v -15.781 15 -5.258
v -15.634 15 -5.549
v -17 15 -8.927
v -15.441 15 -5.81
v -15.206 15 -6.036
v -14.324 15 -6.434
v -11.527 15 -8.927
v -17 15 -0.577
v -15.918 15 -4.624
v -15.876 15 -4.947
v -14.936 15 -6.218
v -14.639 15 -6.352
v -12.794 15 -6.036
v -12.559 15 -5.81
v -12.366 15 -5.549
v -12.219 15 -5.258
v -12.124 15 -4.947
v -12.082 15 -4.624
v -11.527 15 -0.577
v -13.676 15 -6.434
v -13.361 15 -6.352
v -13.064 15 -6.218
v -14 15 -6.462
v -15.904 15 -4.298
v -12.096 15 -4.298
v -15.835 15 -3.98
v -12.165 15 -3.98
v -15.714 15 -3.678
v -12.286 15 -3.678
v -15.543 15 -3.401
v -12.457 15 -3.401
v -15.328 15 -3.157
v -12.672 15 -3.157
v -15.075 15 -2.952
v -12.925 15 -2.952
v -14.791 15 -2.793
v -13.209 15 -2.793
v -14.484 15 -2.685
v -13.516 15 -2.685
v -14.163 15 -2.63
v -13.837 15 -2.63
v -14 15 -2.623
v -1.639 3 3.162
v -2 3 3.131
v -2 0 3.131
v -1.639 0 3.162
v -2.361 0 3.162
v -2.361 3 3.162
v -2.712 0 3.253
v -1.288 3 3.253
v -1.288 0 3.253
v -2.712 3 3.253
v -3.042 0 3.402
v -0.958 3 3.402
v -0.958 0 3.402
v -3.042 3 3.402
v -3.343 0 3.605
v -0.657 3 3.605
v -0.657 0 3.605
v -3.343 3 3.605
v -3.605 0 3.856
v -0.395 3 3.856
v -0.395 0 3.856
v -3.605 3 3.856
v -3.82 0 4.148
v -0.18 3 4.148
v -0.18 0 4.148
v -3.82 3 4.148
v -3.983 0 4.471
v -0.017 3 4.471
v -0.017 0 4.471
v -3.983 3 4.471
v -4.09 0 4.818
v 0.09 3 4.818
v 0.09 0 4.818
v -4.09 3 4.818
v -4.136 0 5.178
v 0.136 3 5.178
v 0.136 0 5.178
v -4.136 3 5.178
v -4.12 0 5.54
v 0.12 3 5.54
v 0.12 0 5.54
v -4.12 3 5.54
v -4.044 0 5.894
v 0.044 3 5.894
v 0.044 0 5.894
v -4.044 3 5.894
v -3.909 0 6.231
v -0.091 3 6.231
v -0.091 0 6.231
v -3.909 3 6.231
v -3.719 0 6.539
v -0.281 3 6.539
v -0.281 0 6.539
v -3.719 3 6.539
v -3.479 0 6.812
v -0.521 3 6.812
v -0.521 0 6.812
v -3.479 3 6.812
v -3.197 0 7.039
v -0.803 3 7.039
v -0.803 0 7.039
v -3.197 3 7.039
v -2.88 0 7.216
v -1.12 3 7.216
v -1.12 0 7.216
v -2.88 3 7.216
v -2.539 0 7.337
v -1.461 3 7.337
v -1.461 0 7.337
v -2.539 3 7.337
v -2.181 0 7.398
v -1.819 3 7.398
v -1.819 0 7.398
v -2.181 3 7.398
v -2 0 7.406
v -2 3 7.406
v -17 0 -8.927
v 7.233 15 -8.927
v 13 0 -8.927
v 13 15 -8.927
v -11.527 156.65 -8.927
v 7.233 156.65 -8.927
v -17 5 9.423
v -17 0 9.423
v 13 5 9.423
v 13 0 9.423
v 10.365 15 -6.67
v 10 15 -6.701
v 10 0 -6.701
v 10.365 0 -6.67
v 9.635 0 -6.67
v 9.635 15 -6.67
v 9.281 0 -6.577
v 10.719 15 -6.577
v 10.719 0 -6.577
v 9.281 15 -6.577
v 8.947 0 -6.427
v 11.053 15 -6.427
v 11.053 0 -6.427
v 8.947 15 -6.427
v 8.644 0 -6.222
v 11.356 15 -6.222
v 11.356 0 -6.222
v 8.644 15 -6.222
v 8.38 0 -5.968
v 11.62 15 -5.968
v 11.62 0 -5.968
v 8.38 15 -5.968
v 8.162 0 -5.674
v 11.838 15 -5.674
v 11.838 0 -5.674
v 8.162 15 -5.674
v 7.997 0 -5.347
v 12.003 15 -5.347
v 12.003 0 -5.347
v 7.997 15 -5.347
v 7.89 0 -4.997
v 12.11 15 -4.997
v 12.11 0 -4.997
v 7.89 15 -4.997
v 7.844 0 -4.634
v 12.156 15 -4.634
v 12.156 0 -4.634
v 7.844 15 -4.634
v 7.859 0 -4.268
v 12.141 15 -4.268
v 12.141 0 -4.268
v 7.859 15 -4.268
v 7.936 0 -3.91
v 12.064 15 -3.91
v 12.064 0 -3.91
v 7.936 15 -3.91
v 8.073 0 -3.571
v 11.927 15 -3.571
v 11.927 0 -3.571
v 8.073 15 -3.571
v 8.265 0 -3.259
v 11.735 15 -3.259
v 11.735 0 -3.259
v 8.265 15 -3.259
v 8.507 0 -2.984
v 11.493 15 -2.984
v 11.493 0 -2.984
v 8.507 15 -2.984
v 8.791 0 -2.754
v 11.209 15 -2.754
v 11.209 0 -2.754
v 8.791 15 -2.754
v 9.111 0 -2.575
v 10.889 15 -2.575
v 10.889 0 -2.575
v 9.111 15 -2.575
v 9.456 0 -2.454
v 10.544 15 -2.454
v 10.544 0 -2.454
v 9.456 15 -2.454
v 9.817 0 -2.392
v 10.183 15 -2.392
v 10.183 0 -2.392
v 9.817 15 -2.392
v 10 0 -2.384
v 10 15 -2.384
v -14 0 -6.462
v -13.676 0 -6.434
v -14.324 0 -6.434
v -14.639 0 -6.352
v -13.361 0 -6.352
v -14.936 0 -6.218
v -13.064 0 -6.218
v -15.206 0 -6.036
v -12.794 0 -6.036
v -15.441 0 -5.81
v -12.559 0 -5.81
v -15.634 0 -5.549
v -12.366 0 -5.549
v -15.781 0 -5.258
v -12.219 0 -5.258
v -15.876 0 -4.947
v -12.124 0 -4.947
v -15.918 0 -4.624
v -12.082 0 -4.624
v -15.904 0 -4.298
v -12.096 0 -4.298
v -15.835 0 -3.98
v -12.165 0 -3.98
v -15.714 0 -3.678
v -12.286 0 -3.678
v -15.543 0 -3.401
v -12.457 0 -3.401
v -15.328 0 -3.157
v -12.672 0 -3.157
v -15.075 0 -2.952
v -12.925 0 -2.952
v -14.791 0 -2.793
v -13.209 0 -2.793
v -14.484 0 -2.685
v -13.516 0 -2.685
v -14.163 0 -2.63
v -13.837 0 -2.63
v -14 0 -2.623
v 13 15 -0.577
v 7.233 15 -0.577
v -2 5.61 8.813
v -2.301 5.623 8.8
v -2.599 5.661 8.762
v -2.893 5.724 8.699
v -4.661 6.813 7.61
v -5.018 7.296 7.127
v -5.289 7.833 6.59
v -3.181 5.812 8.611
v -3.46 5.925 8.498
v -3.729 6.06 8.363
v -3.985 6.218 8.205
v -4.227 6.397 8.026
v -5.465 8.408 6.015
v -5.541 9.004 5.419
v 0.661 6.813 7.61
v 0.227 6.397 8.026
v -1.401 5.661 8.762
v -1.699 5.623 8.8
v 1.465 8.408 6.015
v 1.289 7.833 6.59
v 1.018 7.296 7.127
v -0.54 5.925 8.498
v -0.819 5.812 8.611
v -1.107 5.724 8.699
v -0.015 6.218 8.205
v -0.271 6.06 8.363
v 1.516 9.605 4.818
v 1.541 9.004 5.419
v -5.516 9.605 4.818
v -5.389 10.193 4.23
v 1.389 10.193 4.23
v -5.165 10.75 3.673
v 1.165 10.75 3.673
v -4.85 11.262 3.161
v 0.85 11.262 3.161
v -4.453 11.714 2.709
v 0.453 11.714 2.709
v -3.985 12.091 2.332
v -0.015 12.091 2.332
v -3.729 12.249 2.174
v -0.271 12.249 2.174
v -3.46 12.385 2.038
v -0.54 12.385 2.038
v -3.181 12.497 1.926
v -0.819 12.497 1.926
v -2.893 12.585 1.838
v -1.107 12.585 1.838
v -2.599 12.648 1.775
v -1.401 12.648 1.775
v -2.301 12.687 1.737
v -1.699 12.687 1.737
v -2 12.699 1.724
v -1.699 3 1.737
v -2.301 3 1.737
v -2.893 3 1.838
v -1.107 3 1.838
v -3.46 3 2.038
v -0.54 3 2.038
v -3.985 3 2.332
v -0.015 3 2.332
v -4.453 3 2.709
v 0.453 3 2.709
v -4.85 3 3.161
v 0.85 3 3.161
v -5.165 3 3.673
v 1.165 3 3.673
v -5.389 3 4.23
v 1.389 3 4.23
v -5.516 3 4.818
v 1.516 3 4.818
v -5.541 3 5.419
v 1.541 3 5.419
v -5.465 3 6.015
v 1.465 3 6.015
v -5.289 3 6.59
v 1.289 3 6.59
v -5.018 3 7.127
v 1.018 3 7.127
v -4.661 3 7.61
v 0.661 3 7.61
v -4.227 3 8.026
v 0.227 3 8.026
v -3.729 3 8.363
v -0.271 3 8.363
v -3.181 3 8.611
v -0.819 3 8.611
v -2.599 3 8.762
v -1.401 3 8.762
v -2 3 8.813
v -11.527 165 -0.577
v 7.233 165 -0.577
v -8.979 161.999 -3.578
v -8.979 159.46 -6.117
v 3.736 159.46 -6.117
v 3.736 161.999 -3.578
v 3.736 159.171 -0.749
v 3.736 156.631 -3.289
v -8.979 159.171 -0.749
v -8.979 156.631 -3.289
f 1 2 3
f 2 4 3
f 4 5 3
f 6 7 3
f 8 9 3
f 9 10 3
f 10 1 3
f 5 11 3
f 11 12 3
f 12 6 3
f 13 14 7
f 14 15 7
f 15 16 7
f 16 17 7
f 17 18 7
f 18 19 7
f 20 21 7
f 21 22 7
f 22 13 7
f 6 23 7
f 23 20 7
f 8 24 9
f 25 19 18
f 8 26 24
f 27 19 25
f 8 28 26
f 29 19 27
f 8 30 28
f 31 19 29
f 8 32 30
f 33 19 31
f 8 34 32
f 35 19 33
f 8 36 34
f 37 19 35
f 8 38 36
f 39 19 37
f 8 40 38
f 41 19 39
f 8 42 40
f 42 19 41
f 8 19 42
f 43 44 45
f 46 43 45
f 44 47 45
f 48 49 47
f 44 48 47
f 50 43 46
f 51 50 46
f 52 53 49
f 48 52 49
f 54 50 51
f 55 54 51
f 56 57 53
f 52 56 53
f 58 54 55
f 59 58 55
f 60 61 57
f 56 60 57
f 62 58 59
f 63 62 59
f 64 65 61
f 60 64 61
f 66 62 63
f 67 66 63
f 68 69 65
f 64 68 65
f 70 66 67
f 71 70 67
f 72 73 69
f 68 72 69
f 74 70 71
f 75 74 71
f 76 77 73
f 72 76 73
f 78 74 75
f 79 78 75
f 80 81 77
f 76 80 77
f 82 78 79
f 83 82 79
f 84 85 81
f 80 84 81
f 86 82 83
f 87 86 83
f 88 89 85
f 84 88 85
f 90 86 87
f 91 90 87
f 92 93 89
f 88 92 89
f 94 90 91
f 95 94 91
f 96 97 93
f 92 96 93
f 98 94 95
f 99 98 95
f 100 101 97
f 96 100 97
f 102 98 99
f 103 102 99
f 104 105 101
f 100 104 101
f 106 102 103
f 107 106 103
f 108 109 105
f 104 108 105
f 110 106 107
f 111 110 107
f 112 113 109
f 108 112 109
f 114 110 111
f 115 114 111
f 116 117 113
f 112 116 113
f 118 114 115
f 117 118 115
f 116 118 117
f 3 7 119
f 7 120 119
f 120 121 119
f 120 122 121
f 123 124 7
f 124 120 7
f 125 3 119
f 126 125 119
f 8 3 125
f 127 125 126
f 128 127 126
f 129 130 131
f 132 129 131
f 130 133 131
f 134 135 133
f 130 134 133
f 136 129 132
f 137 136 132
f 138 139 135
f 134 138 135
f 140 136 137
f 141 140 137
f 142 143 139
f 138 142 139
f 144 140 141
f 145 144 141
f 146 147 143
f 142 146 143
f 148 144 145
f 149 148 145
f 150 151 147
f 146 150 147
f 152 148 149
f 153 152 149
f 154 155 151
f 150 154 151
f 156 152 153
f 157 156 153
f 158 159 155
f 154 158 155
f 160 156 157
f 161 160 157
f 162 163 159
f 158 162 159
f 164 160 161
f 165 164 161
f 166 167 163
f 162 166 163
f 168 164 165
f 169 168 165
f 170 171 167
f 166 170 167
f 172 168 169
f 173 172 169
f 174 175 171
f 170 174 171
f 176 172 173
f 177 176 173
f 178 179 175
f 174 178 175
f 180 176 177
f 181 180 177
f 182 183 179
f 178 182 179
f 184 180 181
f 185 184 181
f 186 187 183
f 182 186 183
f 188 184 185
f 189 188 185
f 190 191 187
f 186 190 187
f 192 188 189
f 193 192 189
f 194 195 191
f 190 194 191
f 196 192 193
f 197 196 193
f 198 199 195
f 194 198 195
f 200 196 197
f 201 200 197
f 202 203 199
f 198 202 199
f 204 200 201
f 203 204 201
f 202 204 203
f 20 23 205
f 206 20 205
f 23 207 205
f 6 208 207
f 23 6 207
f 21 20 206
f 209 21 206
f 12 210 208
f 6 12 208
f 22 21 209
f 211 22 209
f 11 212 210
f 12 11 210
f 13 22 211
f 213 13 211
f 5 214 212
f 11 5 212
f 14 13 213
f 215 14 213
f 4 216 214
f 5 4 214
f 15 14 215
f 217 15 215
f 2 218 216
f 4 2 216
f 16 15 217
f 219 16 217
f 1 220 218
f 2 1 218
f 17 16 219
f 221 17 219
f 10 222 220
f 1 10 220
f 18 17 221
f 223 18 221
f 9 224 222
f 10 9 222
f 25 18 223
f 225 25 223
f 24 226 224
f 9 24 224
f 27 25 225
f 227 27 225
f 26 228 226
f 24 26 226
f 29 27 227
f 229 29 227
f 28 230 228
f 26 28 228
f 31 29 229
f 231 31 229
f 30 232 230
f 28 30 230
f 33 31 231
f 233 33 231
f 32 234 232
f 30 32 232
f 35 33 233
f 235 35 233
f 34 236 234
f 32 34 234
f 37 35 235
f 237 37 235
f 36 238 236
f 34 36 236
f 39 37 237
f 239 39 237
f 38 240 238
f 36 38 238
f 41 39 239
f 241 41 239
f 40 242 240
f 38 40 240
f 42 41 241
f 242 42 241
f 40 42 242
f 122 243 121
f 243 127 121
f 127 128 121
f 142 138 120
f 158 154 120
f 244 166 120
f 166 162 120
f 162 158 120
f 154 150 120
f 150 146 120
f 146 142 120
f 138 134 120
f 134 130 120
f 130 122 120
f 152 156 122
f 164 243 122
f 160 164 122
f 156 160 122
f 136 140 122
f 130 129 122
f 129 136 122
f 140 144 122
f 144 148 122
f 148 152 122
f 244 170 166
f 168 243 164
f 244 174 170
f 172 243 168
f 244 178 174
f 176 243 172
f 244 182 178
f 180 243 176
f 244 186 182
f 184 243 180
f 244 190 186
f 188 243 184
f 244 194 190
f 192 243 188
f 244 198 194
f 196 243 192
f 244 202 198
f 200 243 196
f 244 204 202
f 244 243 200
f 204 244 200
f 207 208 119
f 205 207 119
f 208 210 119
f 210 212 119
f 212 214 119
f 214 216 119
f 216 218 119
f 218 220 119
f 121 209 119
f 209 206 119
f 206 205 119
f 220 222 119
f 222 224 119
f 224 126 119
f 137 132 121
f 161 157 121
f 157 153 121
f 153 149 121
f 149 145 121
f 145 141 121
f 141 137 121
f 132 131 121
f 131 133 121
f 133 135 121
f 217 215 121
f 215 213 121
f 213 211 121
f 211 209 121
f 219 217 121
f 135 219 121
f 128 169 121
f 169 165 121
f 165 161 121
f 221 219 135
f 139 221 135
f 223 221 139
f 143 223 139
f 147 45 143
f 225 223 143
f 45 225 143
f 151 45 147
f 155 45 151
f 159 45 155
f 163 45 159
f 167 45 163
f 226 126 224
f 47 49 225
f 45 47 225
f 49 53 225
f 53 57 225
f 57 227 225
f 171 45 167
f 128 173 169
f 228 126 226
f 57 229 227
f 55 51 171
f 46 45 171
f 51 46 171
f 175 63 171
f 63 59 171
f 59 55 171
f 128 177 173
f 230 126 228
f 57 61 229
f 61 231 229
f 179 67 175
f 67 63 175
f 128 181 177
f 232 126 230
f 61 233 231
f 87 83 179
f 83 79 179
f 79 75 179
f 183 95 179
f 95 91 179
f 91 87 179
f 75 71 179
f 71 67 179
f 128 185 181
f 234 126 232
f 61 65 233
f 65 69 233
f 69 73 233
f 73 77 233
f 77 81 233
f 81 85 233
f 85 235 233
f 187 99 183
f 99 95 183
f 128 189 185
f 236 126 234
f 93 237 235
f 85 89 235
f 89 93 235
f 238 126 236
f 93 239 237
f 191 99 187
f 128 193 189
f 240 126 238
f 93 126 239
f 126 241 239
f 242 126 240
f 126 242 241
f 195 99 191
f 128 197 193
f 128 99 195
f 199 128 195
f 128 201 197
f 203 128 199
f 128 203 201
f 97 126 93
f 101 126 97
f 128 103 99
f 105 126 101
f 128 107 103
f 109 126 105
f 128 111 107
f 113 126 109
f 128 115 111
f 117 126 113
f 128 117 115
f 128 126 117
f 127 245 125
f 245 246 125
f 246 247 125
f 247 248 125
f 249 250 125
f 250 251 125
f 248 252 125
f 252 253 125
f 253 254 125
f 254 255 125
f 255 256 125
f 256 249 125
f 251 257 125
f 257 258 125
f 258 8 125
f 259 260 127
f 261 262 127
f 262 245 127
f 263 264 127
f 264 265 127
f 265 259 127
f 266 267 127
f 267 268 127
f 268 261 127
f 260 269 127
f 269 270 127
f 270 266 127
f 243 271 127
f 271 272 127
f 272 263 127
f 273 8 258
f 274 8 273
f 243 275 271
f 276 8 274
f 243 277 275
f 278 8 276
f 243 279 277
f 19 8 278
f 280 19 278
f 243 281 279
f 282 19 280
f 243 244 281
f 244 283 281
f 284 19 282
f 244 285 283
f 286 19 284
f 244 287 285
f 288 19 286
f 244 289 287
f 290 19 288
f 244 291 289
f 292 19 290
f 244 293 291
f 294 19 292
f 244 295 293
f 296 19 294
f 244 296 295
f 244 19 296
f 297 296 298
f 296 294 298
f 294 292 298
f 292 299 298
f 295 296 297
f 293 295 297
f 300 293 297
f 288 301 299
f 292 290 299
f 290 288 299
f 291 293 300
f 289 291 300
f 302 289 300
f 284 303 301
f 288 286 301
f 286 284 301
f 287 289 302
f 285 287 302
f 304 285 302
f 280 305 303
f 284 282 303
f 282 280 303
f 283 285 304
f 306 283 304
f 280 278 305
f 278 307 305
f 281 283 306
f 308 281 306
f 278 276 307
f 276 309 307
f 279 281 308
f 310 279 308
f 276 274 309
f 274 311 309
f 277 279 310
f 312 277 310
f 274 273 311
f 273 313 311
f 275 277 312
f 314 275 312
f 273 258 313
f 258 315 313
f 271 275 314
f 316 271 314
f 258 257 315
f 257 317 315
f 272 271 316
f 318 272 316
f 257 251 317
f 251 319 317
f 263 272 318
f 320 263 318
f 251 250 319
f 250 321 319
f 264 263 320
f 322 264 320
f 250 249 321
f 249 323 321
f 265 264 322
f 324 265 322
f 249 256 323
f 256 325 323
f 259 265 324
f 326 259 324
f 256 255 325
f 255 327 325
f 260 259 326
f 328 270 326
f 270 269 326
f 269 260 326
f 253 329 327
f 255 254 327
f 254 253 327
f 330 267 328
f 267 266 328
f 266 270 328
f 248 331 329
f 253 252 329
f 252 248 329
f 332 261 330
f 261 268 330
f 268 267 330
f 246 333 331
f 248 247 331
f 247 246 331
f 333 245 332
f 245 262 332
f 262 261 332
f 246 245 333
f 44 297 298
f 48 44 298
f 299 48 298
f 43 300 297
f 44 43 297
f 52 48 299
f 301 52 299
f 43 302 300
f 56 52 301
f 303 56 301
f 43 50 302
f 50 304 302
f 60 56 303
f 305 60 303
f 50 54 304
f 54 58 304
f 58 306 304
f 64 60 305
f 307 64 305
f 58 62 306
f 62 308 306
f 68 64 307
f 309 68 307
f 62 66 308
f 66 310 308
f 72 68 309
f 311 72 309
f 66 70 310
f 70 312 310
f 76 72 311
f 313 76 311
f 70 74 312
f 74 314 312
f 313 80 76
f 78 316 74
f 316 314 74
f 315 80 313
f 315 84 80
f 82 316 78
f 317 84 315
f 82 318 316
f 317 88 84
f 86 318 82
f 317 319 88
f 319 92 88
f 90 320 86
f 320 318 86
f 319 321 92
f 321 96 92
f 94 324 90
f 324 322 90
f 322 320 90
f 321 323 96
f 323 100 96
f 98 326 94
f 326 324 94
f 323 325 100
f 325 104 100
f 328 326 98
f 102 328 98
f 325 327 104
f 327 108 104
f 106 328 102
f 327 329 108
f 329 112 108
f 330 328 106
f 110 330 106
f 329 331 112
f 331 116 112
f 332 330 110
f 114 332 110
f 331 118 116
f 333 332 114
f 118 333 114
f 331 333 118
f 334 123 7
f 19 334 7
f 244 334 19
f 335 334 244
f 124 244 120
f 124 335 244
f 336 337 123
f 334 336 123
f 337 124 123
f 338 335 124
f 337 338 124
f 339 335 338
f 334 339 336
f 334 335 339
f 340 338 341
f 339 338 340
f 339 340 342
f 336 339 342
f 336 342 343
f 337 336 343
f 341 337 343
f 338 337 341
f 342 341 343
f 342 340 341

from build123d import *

# Parameters (mm, degrees)
BOSS_EXTRUDE1_DEPTH = 15
CHAMFER1_SIZE       = 10
SKETCH2_R           = 3.544680495
CUT_EXTRUDE1_DEPTH  = 12
SKETCH3_W           = 18.759195859
SKETCH3_H           = 8.35
BOSS_EXTRUDE2_DEPTH = 150
CUT_EXTRUDE2_DEPTH  = 150
SKETCH5_W           = 12.715839202
SKETCH5_H           = 3.591790086
CUT_EXTRUDE3_DEPTH  = 4


with BuildPart() as part:
    # Sketch1 → Boss-Extrude1 (new body)
    with BuildSketch(Plane(origin=(0, 0, 0), x_dir=(1, 0, 0), z_dir=(0, 1, 0))):
        with BuildLine():
            Line((13, 8.926911476), (-2, 8.926911476))
            Line((-2, 8.926911476), (-2, 4.542283032))
            Line((-2, 4.542283032), (7.841609066, 4.542283032))
            ThreePointArc((7.841609066, 4.542283032), (10, 6.700673966), (12.158390934, 4.542283032))
            Line((12.158390934, 4.542283032), (13, 4.542283032))
            Line((13, 4.542283032), (13, 8.926911476))
        make_face()
        with BuildLine():
            Line((-2, 4.542283032), (-2, 8.926911476))
            Line((-2, 8.926911476), (-17, 8.926911476))
            Line((-17, 8.926911476), (-17, 4.542283032))
            Line((-17, 4.542283032), (-15.919451213, 4.542283032))
            ThreePointArc((-15.919451213, 4.542283032), (-14, 6.461734245), (-12.080548787, 4.542283032))
            Line((-12.080548787, 4.542283032), (-2, 4.542283032))
        make_face()
        with BuildLine():
            Line((-2, -3.130873366), (-2, 4.542283032))
            Line((-2, 4.542283032), (-12.080548787, 4.542283032))
            ThreePointArc((-12.080548787, 4.542283032), (-14, 2.622831819), (-15.919451213, 4.542283032))
            Line((-15.919451213, 4.542283032), (-17, 4.542283032))
            Line((-17, 4.542283032), (-17, -9.423088524))
            Line((-17, -9.423088524), (-2, -9.423088524))
            Line((-2, -9.423088524), (-2, -7.40597744))
            ThreePointArc((-2, -7.40597744), (-4.137552037, -5.268425403), (-2, -3.130873366))
        make_face()
        with BuildLine():
            Line((7.841609066, 4.542283032), (-2, 4.542283032))
            Line((-2, 4.542283032), (-2, -3.130873366))
            ThreePointArc((-2, -3.130873366), (-0.488522459, -3.756947863), (0.137552037, -5.268425403))
            ThreePointArc((0.137552037, -5.268425403), (-0.488522459, -6.779902944), (-2, -7.40597744))
            Line((-2, -7.40597744), (-2, -9.423088524))
            Line((-2, -9.423088524), (13, -9.423088524))
            Line((13, -9.423088524), (13, 4.542283032))
            Line((13, 4.542283032), (12.158390934, 4.542283032))
            ThreePointArc((12.158390934, 4.542283032), (10, 2.383892098), (7.841609066, 4.542283032))
        make_face()
    extrude(amount=BOSS_EXTRUDE1_DEPTH)

    # Chamfer1
    # the kernel refuses this chamfer: 10 mm, written as the material it takes off along each edge
    with BuildSketch(Plane(origin=(-42.71682988, 15, 9.423088524), x_dir=(0, -0.9996219169112968, 0.027495876610586317), z_dir=(1, 0, 0))) as chamfer1_piece_1:
        Polygon((CHAMFER1_SIZE * 0.999621916911, CHAMFER1_SIZE * 0.0274958766106), (-CHAMFER1_SIZE * 0.0274958766106, CHAMFER1_SIZE * 0.999621916911), (0, 0), align=None)
    extrude(amount=81.433659759, mode=Mode.SUBTRACT)

    # Sketch2 → Cut-Extrude1 (cut)
    with BuildSketch(Plane(origin=(0, 15, 0), x_dir=(1, 0, 0), z_dir=(0, 1, 0))):
        with Locations(Location((-2, -5.268425403, 0), (0, 0, 270))):
            Circle(SKETCH2_R)
    extrude(amount=-CUT_EXTRUDE1_DEPTH, mode=Mode.SUBTRACT)

    # Sketch3 → Boss-Extrude2 (add)
    with BuildSketch(Plane(origin=(0, 15, 0), x_dir=(1, 0, 0), z_dir=(0, 1, 0))):
        with Locations((-2.146940407, 4.751911476)):
            Rectangle(SKETCH3_W, SKETCH3_H)
    extrude(amount=BOSS_EXTRUDE2_DEPTH)

    # Sketch4 → Cut-Extrude2 (cut)
    with BuildSketch(Plane(origin=(7.232657523, 0, 0), x_dir=(0, 0, -1), z_dir=(1, 0, 0))):
        Polygon((0.576911476, 165), (8.926911476, 156.65), (8.926911476, 165), align=None)
    extrude(amount=-CUT_EXTRUDE2_DEPTH, mode=Mode.SUBTRACT)

    # Sketch5 → Cut-Extrude3 (cut)
    with BuildSketch(Plane(origin=(0, 82.788455738, -82.788455738), x_dir=(1, 0, 0), z_dir=(0, 0.707106781186556, -0.707106781186539))):
        with Locations((-2.621419411, -110.225300743)):
            Rectangle(SKETCH5_W, SKETCH5_H)
    extrude(amount=-CUT_EXTRUDE3_DEPTH, mode=Mode.SUBTRACT)


solid = part.part
